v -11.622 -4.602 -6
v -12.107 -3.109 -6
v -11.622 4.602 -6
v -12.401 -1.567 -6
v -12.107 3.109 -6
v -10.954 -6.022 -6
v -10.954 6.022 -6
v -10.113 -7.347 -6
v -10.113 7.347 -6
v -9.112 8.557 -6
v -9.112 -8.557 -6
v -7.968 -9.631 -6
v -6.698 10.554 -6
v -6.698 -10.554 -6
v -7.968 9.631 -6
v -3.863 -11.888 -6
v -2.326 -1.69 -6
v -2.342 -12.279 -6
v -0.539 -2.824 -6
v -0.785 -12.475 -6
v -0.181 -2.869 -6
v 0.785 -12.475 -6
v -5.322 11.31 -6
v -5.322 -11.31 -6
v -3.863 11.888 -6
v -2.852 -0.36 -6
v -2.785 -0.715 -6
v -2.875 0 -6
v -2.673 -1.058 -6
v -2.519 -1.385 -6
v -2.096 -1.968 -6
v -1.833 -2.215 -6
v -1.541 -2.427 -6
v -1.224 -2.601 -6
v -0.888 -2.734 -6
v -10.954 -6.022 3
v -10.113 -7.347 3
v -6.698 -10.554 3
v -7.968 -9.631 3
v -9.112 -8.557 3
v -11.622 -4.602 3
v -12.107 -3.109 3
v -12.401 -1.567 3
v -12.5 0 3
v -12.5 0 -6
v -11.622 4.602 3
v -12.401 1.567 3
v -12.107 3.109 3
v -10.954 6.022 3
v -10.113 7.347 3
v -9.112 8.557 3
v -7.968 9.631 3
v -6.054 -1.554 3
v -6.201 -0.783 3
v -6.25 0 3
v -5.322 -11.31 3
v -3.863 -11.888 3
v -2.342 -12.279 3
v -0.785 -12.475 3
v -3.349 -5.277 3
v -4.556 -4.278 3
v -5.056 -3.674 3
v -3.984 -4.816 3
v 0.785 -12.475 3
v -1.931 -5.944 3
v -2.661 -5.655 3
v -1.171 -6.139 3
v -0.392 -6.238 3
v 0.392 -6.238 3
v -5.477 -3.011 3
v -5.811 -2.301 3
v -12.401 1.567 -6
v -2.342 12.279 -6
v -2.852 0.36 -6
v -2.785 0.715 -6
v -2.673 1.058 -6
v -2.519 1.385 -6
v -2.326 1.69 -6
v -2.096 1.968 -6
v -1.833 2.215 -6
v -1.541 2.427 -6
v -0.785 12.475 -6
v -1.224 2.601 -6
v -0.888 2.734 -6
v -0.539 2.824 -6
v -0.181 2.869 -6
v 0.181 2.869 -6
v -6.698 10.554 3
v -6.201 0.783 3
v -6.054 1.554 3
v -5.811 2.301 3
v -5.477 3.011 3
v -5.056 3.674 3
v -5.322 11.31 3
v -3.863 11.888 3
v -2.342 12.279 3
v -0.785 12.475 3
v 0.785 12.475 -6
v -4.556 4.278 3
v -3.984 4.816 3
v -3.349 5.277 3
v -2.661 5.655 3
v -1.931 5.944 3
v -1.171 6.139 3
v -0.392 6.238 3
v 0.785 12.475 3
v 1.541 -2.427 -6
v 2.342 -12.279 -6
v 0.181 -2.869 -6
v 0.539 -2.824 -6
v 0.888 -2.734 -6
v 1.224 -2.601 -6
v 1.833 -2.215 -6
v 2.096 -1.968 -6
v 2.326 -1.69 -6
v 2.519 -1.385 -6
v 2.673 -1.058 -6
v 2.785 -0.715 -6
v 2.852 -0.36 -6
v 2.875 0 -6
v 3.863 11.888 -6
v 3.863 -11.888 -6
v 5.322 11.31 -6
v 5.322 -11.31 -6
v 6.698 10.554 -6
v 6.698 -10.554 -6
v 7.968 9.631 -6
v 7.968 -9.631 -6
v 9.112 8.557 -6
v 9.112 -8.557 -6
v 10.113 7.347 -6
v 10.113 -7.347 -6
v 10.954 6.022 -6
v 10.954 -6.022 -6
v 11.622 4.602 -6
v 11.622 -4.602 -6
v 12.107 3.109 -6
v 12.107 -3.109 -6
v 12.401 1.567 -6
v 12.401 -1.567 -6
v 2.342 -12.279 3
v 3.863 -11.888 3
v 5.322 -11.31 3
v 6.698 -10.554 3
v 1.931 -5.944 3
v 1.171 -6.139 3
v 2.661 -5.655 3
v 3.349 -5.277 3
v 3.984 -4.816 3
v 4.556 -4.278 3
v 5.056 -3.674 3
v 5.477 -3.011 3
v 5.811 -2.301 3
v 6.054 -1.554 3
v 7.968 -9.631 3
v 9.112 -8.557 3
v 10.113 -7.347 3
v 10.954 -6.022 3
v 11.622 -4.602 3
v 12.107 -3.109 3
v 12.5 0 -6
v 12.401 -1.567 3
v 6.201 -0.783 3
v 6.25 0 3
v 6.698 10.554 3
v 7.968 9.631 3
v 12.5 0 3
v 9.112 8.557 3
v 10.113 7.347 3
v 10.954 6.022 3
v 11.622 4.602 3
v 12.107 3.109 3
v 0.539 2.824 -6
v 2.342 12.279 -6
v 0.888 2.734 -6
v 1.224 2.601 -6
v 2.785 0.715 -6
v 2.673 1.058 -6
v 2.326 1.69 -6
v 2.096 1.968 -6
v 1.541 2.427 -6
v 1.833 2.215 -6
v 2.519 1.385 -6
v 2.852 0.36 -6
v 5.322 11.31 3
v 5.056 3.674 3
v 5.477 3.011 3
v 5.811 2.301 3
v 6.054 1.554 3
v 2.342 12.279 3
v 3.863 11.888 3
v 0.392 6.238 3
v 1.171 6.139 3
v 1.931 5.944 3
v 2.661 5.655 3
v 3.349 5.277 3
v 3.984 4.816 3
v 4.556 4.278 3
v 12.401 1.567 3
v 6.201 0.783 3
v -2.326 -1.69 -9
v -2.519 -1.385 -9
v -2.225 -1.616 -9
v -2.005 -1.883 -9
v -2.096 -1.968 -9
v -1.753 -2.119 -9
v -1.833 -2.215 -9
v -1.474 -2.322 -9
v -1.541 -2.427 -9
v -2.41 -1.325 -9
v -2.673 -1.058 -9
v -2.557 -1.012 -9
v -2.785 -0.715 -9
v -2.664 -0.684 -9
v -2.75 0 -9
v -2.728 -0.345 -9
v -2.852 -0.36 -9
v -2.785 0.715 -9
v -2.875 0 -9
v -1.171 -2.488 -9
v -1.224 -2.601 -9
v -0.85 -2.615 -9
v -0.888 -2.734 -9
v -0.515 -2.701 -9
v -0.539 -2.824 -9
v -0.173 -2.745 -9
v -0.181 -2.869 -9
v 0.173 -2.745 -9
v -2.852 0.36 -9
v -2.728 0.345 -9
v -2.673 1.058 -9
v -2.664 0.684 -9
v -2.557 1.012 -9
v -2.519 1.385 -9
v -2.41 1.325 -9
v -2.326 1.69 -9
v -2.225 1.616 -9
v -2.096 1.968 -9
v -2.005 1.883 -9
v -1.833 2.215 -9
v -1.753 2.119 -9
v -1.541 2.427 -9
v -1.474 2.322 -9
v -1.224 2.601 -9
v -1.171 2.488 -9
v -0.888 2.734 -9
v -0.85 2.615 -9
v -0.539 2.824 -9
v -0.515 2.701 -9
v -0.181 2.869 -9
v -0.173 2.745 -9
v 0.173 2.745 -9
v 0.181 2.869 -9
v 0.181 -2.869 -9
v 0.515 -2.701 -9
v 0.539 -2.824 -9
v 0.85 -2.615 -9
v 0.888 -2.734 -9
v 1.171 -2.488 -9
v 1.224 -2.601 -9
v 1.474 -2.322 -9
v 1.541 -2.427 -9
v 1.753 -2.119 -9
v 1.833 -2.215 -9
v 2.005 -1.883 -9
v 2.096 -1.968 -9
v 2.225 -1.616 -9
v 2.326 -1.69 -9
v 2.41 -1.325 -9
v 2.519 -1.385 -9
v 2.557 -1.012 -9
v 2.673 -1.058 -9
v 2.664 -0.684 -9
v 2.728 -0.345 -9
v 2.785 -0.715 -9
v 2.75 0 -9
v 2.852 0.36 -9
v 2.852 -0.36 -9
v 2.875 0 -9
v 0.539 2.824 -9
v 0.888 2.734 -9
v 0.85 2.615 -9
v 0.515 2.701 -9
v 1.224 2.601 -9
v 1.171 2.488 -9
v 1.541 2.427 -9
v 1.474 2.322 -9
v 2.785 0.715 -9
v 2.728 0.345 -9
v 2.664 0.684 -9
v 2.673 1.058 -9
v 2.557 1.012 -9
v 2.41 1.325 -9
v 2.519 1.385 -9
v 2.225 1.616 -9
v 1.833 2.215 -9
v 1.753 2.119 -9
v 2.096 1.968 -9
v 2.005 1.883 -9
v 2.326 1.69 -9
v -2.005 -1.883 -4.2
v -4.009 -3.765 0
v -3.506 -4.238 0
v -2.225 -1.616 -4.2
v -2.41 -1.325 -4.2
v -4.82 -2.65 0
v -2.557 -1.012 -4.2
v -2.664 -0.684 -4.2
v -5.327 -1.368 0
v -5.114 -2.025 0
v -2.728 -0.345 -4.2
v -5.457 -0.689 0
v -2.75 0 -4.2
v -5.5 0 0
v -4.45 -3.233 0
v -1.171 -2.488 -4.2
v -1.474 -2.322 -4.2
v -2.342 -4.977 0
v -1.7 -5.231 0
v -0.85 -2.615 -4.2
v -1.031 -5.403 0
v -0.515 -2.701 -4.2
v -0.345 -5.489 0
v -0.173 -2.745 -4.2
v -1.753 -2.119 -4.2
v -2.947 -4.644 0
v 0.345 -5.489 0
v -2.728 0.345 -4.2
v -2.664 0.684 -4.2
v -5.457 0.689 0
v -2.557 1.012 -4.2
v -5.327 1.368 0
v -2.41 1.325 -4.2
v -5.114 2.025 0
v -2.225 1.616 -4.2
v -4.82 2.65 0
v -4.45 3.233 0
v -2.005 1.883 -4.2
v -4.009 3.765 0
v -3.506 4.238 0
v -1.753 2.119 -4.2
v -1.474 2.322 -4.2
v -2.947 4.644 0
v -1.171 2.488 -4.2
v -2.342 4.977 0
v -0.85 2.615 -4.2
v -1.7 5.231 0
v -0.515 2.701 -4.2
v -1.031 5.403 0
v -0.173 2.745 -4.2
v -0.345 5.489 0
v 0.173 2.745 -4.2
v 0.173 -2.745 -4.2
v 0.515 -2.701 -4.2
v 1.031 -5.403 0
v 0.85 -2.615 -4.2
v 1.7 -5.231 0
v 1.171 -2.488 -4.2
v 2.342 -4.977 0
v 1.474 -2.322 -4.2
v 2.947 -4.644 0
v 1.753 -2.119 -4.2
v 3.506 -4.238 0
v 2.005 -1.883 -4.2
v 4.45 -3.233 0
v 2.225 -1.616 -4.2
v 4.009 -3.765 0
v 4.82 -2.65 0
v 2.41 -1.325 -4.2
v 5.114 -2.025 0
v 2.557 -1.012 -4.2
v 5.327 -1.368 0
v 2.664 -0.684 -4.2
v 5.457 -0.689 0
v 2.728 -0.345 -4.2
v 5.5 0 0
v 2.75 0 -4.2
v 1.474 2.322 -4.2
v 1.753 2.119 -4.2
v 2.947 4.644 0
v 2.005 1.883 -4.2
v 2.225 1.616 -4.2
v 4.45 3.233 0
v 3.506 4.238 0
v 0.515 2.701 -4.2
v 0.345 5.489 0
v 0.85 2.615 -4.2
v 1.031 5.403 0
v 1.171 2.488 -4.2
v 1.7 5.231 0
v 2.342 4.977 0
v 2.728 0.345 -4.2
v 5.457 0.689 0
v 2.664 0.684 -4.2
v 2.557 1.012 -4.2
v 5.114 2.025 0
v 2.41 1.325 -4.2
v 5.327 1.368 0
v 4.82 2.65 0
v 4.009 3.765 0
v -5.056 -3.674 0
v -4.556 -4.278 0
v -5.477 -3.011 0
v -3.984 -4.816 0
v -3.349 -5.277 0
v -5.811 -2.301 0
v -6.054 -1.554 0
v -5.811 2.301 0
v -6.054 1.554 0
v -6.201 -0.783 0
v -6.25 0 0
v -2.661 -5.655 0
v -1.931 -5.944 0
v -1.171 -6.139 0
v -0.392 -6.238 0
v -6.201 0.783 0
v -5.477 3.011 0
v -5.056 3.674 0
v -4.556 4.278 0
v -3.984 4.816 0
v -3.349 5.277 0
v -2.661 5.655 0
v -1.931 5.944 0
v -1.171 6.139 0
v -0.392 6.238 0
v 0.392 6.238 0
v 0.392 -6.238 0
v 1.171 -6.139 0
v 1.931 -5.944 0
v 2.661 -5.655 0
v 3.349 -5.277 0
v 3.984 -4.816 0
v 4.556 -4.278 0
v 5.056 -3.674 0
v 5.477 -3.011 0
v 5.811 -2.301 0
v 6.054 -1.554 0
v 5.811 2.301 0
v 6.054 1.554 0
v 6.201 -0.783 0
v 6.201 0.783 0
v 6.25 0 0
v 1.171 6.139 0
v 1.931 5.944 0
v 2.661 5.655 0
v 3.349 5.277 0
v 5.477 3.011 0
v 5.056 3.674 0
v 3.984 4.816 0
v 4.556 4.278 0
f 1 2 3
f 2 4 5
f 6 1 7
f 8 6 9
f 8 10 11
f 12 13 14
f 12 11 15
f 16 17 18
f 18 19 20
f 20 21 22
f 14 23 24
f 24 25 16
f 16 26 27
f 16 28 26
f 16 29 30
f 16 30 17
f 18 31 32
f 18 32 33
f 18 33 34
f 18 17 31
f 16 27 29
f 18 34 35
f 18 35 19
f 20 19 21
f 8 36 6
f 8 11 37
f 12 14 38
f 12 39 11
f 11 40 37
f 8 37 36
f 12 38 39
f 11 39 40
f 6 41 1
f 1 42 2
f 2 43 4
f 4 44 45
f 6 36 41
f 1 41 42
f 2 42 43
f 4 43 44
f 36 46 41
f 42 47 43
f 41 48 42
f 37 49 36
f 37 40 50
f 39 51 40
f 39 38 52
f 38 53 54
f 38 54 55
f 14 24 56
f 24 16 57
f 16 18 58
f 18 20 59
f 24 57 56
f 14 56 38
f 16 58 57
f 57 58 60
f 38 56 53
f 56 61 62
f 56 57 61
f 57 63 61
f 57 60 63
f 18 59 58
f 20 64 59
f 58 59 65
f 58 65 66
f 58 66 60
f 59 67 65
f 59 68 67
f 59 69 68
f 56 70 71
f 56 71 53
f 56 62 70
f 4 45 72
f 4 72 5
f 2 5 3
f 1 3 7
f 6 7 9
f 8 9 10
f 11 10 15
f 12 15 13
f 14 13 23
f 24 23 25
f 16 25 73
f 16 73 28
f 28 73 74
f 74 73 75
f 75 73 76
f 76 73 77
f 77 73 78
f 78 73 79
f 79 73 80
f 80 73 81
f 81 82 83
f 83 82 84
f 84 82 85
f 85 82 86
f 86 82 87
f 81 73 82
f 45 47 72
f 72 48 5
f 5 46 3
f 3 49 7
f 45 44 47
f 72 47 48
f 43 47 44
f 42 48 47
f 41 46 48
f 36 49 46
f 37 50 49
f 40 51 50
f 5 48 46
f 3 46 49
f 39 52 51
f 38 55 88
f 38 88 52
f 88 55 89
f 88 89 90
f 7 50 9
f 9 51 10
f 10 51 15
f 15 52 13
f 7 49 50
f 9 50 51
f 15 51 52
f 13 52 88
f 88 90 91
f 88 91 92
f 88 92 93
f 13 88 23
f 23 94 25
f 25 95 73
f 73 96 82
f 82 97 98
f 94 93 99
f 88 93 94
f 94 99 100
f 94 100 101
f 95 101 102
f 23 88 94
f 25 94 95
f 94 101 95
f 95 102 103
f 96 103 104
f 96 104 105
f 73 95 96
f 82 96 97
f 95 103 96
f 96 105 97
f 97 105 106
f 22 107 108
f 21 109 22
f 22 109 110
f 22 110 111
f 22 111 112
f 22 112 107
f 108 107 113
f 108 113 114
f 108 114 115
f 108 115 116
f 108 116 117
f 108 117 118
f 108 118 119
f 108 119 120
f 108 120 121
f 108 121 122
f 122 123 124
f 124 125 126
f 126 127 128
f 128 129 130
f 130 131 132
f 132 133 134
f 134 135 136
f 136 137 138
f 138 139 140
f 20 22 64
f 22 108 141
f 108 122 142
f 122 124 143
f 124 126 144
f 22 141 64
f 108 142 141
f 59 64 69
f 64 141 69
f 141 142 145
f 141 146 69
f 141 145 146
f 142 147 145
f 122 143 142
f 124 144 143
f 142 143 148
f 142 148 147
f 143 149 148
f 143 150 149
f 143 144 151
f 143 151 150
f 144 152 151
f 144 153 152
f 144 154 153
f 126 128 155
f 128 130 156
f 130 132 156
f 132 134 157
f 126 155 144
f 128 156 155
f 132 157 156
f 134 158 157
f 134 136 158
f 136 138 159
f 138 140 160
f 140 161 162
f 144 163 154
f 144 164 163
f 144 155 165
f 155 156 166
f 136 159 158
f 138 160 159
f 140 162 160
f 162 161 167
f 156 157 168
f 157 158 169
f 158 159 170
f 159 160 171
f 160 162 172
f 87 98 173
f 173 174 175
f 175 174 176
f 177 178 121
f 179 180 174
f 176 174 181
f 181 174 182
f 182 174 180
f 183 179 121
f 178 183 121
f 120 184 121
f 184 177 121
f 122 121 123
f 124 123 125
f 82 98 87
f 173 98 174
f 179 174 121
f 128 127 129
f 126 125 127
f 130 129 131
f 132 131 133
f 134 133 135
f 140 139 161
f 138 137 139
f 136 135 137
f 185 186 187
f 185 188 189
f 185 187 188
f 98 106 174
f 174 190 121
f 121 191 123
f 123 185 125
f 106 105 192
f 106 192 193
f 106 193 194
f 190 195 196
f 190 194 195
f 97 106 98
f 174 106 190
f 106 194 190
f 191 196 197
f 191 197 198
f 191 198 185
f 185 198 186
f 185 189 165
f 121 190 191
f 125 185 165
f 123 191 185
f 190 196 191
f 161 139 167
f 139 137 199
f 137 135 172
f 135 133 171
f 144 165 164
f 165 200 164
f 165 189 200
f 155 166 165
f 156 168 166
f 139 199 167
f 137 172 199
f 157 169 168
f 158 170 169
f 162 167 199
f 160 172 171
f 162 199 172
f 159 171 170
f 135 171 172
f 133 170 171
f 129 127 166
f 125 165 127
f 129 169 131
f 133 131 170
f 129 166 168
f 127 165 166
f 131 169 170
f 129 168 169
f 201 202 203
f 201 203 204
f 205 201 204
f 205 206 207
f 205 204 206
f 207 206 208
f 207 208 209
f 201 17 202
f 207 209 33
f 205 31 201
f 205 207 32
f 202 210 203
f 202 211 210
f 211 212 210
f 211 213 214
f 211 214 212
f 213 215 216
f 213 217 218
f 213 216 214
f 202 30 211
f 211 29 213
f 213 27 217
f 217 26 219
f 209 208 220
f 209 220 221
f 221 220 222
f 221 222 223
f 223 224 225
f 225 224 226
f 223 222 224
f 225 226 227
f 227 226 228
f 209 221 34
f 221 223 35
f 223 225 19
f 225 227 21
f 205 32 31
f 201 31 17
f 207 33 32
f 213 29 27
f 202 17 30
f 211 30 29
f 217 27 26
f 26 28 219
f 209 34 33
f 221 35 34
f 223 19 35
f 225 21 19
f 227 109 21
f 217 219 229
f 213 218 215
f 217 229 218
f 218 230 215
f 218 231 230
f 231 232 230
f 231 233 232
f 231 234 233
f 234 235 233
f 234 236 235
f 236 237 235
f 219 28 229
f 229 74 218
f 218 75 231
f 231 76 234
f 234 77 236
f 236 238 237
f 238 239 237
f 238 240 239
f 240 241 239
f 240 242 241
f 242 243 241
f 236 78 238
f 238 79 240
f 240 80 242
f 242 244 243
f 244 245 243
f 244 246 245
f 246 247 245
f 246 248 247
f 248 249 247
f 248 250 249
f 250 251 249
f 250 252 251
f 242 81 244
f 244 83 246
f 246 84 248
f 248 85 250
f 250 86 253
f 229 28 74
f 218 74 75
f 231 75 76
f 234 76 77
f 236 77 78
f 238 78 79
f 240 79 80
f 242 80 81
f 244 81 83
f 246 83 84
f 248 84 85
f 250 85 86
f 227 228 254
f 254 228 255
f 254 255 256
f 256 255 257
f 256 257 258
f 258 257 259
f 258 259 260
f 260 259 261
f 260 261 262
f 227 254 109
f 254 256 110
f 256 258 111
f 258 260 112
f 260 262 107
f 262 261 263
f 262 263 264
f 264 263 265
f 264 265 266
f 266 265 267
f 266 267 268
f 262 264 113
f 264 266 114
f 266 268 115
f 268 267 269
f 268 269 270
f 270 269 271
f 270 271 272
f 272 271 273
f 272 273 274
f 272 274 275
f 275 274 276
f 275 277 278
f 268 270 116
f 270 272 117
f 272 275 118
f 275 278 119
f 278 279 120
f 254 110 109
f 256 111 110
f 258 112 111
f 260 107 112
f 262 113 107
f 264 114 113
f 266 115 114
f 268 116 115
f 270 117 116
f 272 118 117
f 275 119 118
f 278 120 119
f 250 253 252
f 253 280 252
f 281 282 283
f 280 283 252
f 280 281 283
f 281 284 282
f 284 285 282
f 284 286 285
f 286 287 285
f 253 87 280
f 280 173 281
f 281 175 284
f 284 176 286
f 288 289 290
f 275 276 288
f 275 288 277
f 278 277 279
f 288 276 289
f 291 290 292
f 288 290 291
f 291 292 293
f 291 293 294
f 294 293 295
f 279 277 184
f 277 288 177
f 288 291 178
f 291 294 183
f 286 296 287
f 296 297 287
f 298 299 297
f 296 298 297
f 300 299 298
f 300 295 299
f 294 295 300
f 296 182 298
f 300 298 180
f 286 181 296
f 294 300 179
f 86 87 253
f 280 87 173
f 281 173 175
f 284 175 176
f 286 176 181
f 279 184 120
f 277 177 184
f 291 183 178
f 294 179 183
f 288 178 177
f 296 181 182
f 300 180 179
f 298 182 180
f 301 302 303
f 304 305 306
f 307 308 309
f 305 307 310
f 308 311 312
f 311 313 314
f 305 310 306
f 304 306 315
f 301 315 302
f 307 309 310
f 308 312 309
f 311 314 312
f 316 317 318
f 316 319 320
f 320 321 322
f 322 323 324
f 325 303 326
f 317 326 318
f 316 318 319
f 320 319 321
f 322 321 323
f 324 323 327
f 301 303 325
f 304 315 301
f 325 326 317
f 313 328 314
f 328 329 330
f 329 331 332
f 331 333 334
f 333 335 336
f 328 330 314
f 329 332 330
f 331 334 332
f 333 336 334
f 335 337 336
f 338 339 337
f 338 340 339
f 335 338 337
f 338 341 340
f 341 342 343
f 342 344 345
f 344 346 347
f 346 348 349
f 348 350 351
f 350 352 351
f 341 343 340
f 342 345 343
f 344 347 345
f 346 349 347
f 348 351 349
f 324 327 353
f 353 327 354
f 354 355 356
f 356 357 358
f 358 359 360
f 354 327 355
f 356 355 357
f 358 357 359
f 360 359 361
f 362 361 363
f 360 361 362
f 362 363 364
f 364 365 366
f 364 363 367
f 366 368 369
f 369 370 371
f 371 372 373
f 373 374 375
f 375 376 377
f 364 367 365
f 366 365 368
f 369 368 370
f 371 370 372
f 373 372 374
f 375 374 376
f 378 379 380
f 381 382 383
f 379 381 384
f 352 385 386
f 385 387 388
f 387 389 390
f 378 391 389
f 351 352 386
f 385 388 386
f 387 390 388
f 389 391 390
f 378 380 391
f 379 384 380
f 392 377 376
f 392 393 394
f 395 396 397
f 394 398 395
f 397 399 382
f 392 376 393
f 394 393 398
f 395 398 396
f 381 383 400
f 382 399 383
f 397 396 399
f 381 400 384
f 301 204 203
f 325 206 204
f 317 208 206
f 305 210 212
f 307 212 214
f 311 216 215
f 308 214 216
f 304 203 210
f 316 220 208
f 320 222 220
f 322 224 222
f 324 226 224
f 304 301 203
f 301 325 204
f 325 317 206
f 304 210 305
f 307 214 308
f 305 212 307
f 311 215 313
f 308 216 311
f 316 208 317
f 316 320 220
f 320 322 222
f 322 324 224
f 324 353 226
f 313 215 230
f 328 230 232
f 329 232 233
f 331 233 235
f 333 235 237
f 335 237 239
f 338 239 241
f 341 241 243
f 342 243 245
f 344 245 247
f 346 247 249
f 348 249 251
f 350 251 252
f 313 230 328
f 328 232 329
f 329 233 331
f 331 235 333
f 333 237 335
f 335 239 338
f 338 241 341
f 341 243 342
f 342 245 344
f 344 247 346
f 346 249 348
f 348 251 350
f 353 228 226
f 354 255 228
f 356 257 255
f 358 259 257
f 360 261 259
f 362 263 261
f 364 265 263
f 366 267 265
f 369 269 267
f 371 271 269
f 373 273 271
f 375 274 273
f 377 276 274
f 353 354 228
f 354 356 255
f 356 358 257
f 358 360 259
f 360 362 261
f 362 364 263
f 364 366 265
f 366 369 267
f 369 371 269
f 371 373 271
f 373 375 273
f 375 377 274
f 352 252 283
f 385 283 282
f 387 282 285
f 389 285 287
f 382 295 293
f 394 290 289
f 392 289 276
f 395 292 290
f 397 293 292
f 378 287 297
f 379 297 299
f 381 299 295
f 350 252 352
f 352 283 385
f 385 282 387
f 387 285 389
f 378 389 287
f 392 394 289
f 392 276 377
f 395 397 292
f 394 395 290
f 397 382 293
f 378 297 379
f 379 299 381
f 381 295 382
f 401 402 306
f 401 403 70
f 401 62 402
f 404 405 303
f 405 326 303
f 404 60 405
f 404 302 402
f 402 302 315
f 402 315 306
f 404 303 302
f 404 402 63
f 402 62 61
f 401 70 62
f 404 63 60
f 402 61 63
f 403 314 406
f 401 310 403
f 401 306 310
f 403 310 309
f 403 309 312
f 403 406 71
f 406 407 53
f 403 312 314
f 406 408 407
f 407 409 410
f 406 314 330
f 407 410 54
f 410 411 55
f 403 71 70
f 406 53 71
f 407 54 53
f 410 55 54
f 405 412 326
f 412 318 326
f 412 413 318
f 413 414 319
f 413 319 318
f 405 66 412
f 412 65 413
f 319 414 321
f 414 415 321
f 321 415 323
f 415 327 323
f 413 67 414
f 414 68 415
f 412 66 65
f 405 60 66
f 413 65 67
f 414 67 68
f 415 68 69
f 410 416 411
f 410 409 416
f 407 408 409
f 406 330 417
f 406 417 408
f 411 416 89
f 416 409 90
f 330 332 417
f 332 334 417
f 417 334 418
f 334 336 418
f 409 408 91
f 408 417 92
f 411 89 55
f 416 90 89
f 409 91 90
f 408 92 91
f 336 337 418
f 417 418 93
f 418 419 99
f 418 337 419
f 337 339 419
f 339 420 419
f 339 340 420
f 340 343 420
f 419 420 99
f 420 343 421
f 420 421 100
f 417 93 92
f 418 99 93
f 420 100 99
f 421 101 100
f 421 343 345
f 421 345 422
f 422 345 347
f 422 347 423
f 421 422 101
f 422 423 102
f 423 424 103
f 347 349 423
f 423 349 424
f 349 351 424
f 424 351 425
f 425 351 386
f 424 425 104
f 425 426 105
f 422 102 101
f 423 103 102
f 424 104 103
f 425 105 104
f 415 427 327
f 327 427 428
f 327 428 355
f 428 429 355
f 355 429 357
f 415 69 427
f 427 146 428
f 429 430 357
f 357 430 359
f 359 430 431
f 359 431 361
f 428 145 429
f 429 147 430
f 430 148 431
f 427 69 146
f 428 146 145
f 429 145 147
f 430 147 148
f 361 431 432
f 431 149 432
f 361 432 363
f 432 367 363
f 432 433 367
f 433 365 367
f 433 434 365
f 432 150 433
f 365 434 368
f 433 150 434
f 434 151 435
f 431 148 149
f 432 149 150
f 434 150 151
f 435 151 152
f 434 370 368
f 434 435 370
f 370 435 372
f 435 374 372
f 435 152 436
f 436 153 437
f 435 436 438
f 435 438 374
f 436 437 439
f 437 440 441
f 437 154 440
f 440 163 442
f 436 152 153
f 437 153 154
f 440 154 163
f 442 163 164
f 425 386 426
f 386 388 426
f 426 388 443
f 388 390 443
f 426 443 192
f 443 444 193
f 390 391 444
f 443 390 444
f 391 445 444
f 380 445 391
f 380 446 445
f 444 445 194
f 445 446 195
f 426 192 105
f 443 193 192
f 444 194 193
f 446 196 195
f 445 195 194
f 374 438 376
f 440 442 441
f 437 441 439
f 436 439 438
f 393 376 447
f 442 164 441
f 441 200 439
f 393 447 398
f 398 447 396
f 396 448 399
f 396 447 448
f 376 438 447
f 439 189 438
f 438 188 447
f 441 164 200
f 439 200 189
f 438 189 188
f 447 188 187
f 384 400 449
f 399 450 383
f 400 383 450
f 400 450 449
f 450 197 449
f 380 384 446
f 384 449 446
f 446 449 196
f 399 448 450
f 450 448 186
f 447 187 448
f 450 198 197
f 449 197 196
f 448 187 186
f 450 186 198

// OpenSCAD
$fn = 50;


difference() {
	union() {
		translate(v = [0, 0, -6.0000000000]) {
			cylinder(h = 9, r = 12.5000000000);
		}
		#translate(v = [0, 0, -9.0000000000]) {
			cylinder(h = 9, r = 2.8750000000);
		}
	}
	union() {
		translate(v = [0, 0, 0]) {
			rotate(a = [0, 0, 0]) {
				difference() {
					union() {
						translate(v = [0, 0, -9.0000000000]) {
							cylinder(h = 9, r = 2.2500000000);
						}
						translate(v = [0, 0, -4.2000000000]) {
							cylinder(h = 4.2000000000, r1 = 2.7500000000, r2 = 5.5000000000);
						}
						translate(v = [0, 0, -9.0000000000]) {
							cylinder(h = 9, r = 2.7500000000);
						}
						translate(v = [0, 0, -9.0000000000]) {
							cylinder(h = 9, r = 2.2500000000);
						}
					}
					union();
				}
			}
		}
		#cylinder(h = 3, r = 6.2500000000);
	}
}
